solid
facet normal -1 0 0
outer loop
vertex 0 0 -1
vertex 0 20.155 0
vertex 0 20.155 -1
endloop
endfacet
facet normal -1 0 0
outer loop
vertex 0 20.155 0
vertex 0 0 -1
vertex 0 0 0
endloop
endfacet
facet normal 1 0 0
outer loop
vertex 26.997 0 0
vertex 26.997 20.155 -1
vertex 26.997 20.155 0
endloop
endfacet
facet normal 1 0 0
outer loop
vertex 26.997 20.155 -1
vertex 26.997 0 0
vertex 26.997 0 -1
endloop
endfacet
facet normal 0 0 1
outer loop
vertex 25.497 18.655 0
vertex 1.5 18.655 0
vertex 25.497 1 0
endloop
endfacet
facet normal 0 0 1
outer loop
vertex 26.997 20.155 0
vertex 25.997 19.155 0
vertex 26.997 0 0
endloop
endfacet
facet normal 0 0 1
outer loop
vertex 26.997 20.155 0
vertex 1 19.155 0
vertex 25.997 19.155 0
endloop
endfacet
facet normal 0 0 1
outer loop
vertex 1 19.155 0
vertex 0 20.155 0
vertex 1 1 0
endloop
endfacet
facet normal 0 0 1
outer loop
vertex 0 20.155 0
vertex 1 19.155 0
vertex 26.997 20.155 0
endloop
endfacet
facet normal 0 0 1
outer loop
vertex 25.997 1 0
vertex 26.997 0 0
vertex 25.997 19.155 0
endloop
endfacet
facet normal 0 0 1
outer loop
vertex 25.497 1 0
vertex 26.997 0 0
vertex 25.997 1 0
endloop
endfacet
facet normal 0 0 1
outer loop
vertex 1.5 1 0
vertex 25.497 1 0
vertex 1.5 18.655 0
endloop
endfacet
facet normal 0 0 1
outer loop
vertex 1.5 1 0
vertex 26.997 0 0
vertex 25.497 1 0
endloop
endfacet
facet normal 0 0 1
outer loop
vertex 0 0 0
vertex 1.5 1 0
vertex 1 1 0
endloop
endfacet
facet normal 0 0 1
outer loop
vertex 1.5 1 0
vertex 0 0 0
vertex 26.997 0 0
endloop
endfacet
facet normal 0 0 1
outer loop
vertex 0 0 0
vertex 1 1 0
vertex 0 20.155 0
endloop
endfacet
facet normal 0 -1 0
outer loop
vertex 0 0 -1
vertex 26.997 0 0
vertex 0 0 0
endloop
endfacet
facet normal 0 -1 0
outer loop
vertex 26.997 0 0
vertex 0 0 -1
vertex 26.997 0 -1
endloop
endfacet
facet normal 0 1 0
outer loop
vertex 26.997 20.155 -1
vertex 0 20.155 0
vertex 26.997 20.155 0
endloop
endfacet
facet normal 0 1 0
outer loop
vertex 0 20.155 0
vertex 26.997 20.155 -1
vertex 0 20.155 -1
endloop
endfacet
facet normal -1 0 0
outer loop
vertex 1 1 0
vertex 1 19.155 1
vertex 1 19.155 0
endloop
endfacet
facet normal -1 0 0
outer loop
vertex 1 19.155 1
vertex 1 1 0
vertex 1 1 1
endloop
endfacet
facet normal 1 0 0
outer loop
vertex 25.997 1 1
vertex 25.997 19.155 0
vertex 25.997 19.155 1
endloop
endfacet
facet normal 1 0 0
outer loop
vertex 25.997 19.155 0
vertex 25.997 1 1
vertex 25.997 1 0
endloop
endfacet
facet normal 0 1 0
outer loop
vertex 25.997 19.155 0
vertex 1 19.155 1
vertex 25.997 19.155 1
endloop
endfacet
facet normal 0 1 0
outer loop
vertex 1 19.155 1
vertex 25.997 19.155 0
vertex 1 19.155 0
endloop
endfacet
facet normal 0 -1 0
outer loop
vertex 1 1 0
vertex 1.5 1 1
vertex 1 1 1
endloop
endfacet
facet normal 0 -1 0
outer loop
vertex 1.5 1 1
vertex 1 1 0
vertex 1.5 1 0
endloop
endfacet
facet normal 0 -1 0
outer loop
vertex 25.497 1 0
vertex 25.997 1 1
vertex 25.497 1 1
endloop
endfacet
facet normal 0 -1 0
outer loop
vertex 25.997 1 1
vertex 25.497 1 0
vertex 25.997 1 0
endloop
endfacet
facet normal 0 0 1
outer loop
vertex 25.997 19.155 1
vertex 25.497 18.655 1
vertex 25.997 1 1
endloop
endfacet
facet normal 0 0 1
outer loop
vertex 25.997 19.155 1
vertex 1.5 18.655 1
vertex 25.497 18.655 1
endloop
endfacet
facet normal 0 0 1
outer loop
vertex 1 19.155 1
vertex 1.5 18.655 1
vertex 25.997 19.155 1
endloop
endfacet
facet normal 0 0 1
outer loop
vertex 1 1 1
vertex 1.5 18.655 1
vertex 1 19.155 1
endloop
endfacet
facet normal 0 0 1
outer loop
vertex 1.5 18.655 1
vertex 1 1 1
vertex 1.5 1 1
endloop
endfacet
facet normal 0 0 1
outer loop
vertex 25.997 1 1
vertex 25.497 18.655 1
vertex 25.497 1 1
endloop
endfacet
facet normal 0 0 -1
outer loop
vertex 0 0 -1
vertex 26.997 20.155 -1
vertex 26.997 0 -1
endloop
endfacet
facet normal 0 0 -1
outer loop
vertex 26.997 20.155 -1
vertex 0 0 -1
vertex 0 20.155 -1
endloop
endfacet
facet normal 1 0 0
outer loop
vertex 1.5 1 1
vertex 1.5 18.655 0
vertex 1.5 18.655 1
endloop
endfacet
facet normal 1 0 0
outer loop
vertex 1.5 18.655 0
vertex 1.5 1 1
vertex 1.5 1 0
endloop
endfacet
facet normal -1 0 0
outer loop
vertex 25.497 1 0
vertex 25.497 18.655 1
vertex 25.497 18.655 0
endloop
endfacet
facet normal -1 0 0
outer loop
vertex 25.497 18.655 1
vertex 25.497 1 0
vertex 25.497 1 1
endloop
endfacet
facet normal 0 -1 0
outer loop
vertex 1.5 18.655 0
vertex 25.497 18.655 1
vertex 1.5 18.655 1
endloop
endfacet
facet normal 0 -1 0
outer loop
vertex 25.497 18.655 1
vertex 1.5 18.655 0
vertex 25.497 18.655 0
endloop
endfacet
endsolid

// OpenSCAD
// file: PSU.scad
xdim = 23.497 + 1.5;
ydim = 18.155;
zdim = 13.5; 
wt = 1;
a = 0.897;
b = 4.364;
c = 10.222;
d = 3.168;
e = 1.495;
f = 3.168;

conn_pos = [a, a+b+c, a+b+c+d+e];
conn_dim = [
    [b, 8],
    [d, 8],
    [f, 8]
];

div_width = 0.5;
div_reach = 2.8;
div_pos = a+b+c+d+(e/2)-(div_width/2);

//psu_case();

module psu_case() {
    translate([wt + div_pos, wt, 0]) {
        cube(size=[div_width, div_reach, zdim]);
    }

    difference() {
        cube(size=[ xdim + (2 * wt),
                    ydim + (2 * wt),
                    zdim + wt]);
        translate([wt,wt,-1]) {
            cube(size=[ xdim,
                        ydim,
                        zdim + 1]);
        }
        conn_cuts();
    }
}

module conn_cuts() {
    translate([wt, -1, 0]) {
        for(i = [0:1:len(conn_pos) - 1]) {
            translate([ conn_pos[i], 0, -wt]) {
                cube([  conn_dim[i][0],
                        wt + 2,
                        conn_dim[i][1] + 1]);
            }
        }
    }
}

//color("red")    conn_cuts();
// main file
include <PSU.scad>

difference() {
    translate([0,0,-1])
        cube(size=[xdim+(2*wt),ydim+(2*wt),2]);
    psu_case();
    translate([wt+.5,0,0])
        cube(size=[xdim-1,ydim+.5,1]);
}
